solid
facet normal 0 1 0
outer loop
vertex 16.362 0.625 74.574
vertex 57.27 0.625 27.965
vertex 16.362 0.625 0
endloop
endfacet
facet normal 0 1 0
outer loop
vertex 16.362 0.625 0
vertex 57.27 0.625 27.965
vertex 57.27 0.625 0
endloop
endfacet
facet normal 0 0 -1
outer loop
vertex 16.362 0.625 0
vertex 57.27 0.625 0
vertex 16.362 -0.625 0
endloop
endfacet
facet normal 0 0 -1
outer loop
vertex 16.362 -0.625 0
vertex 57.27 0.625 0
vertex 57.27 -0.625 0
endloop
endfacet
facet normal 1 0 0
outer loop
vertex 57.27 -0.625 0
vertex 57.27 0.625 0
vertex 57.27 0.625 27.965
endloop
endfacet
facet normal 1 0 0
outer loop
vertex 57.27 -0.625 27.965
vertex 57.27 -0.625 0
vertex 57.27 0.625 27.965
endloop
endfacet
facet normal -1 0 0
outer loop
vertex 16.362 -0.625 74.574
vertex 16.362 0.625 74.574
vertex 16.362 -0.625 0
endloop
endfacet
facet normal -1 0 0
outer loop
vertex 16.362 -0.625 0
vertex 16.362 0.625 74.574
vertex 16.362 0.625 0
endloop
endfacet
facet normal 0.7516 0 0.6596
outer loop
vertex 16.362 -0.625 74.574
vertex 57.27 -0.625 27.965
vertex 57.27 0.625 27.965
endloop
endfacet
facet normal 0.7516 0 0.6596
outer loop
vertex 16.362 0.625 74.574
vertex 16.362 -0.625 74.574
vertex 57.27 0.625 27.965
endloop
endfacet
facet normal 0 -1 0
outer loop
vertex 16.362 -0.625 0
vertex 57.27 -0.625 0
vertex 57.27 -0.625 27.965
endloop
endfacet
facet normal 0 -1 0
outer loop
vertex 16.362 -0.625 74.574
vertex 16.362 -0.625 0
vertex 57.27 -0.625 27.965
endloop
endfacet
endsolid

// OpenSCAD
polyhedron(points = [[16.3624918390, 0.6250000000, 0], [16.3624918390, -0.6250000000, 0], [57.2704714364, 0.6250000000, 0], [57.2704714364, -0.6250000000, 0], [57.2704714364, 0.6250000000, 27.9653848987], [57.2704714364, -0.6250000000, 27.9653848987], [16.3624918390, 0.6250000000, 74.5743597298], [16.3624918390, -0.6250000000, 74.5743597298]], triangles = [[0, 1, 2], [1, 3, 2], [2, 3, 4], [3, 5, 4], [4, 5, 6], [5, 7, 6], [6, 7, 0], [7, 1, 0], [0, 2, 6], [2, 4, 6], [1, 7, 3], [3, 7, 5]]);
